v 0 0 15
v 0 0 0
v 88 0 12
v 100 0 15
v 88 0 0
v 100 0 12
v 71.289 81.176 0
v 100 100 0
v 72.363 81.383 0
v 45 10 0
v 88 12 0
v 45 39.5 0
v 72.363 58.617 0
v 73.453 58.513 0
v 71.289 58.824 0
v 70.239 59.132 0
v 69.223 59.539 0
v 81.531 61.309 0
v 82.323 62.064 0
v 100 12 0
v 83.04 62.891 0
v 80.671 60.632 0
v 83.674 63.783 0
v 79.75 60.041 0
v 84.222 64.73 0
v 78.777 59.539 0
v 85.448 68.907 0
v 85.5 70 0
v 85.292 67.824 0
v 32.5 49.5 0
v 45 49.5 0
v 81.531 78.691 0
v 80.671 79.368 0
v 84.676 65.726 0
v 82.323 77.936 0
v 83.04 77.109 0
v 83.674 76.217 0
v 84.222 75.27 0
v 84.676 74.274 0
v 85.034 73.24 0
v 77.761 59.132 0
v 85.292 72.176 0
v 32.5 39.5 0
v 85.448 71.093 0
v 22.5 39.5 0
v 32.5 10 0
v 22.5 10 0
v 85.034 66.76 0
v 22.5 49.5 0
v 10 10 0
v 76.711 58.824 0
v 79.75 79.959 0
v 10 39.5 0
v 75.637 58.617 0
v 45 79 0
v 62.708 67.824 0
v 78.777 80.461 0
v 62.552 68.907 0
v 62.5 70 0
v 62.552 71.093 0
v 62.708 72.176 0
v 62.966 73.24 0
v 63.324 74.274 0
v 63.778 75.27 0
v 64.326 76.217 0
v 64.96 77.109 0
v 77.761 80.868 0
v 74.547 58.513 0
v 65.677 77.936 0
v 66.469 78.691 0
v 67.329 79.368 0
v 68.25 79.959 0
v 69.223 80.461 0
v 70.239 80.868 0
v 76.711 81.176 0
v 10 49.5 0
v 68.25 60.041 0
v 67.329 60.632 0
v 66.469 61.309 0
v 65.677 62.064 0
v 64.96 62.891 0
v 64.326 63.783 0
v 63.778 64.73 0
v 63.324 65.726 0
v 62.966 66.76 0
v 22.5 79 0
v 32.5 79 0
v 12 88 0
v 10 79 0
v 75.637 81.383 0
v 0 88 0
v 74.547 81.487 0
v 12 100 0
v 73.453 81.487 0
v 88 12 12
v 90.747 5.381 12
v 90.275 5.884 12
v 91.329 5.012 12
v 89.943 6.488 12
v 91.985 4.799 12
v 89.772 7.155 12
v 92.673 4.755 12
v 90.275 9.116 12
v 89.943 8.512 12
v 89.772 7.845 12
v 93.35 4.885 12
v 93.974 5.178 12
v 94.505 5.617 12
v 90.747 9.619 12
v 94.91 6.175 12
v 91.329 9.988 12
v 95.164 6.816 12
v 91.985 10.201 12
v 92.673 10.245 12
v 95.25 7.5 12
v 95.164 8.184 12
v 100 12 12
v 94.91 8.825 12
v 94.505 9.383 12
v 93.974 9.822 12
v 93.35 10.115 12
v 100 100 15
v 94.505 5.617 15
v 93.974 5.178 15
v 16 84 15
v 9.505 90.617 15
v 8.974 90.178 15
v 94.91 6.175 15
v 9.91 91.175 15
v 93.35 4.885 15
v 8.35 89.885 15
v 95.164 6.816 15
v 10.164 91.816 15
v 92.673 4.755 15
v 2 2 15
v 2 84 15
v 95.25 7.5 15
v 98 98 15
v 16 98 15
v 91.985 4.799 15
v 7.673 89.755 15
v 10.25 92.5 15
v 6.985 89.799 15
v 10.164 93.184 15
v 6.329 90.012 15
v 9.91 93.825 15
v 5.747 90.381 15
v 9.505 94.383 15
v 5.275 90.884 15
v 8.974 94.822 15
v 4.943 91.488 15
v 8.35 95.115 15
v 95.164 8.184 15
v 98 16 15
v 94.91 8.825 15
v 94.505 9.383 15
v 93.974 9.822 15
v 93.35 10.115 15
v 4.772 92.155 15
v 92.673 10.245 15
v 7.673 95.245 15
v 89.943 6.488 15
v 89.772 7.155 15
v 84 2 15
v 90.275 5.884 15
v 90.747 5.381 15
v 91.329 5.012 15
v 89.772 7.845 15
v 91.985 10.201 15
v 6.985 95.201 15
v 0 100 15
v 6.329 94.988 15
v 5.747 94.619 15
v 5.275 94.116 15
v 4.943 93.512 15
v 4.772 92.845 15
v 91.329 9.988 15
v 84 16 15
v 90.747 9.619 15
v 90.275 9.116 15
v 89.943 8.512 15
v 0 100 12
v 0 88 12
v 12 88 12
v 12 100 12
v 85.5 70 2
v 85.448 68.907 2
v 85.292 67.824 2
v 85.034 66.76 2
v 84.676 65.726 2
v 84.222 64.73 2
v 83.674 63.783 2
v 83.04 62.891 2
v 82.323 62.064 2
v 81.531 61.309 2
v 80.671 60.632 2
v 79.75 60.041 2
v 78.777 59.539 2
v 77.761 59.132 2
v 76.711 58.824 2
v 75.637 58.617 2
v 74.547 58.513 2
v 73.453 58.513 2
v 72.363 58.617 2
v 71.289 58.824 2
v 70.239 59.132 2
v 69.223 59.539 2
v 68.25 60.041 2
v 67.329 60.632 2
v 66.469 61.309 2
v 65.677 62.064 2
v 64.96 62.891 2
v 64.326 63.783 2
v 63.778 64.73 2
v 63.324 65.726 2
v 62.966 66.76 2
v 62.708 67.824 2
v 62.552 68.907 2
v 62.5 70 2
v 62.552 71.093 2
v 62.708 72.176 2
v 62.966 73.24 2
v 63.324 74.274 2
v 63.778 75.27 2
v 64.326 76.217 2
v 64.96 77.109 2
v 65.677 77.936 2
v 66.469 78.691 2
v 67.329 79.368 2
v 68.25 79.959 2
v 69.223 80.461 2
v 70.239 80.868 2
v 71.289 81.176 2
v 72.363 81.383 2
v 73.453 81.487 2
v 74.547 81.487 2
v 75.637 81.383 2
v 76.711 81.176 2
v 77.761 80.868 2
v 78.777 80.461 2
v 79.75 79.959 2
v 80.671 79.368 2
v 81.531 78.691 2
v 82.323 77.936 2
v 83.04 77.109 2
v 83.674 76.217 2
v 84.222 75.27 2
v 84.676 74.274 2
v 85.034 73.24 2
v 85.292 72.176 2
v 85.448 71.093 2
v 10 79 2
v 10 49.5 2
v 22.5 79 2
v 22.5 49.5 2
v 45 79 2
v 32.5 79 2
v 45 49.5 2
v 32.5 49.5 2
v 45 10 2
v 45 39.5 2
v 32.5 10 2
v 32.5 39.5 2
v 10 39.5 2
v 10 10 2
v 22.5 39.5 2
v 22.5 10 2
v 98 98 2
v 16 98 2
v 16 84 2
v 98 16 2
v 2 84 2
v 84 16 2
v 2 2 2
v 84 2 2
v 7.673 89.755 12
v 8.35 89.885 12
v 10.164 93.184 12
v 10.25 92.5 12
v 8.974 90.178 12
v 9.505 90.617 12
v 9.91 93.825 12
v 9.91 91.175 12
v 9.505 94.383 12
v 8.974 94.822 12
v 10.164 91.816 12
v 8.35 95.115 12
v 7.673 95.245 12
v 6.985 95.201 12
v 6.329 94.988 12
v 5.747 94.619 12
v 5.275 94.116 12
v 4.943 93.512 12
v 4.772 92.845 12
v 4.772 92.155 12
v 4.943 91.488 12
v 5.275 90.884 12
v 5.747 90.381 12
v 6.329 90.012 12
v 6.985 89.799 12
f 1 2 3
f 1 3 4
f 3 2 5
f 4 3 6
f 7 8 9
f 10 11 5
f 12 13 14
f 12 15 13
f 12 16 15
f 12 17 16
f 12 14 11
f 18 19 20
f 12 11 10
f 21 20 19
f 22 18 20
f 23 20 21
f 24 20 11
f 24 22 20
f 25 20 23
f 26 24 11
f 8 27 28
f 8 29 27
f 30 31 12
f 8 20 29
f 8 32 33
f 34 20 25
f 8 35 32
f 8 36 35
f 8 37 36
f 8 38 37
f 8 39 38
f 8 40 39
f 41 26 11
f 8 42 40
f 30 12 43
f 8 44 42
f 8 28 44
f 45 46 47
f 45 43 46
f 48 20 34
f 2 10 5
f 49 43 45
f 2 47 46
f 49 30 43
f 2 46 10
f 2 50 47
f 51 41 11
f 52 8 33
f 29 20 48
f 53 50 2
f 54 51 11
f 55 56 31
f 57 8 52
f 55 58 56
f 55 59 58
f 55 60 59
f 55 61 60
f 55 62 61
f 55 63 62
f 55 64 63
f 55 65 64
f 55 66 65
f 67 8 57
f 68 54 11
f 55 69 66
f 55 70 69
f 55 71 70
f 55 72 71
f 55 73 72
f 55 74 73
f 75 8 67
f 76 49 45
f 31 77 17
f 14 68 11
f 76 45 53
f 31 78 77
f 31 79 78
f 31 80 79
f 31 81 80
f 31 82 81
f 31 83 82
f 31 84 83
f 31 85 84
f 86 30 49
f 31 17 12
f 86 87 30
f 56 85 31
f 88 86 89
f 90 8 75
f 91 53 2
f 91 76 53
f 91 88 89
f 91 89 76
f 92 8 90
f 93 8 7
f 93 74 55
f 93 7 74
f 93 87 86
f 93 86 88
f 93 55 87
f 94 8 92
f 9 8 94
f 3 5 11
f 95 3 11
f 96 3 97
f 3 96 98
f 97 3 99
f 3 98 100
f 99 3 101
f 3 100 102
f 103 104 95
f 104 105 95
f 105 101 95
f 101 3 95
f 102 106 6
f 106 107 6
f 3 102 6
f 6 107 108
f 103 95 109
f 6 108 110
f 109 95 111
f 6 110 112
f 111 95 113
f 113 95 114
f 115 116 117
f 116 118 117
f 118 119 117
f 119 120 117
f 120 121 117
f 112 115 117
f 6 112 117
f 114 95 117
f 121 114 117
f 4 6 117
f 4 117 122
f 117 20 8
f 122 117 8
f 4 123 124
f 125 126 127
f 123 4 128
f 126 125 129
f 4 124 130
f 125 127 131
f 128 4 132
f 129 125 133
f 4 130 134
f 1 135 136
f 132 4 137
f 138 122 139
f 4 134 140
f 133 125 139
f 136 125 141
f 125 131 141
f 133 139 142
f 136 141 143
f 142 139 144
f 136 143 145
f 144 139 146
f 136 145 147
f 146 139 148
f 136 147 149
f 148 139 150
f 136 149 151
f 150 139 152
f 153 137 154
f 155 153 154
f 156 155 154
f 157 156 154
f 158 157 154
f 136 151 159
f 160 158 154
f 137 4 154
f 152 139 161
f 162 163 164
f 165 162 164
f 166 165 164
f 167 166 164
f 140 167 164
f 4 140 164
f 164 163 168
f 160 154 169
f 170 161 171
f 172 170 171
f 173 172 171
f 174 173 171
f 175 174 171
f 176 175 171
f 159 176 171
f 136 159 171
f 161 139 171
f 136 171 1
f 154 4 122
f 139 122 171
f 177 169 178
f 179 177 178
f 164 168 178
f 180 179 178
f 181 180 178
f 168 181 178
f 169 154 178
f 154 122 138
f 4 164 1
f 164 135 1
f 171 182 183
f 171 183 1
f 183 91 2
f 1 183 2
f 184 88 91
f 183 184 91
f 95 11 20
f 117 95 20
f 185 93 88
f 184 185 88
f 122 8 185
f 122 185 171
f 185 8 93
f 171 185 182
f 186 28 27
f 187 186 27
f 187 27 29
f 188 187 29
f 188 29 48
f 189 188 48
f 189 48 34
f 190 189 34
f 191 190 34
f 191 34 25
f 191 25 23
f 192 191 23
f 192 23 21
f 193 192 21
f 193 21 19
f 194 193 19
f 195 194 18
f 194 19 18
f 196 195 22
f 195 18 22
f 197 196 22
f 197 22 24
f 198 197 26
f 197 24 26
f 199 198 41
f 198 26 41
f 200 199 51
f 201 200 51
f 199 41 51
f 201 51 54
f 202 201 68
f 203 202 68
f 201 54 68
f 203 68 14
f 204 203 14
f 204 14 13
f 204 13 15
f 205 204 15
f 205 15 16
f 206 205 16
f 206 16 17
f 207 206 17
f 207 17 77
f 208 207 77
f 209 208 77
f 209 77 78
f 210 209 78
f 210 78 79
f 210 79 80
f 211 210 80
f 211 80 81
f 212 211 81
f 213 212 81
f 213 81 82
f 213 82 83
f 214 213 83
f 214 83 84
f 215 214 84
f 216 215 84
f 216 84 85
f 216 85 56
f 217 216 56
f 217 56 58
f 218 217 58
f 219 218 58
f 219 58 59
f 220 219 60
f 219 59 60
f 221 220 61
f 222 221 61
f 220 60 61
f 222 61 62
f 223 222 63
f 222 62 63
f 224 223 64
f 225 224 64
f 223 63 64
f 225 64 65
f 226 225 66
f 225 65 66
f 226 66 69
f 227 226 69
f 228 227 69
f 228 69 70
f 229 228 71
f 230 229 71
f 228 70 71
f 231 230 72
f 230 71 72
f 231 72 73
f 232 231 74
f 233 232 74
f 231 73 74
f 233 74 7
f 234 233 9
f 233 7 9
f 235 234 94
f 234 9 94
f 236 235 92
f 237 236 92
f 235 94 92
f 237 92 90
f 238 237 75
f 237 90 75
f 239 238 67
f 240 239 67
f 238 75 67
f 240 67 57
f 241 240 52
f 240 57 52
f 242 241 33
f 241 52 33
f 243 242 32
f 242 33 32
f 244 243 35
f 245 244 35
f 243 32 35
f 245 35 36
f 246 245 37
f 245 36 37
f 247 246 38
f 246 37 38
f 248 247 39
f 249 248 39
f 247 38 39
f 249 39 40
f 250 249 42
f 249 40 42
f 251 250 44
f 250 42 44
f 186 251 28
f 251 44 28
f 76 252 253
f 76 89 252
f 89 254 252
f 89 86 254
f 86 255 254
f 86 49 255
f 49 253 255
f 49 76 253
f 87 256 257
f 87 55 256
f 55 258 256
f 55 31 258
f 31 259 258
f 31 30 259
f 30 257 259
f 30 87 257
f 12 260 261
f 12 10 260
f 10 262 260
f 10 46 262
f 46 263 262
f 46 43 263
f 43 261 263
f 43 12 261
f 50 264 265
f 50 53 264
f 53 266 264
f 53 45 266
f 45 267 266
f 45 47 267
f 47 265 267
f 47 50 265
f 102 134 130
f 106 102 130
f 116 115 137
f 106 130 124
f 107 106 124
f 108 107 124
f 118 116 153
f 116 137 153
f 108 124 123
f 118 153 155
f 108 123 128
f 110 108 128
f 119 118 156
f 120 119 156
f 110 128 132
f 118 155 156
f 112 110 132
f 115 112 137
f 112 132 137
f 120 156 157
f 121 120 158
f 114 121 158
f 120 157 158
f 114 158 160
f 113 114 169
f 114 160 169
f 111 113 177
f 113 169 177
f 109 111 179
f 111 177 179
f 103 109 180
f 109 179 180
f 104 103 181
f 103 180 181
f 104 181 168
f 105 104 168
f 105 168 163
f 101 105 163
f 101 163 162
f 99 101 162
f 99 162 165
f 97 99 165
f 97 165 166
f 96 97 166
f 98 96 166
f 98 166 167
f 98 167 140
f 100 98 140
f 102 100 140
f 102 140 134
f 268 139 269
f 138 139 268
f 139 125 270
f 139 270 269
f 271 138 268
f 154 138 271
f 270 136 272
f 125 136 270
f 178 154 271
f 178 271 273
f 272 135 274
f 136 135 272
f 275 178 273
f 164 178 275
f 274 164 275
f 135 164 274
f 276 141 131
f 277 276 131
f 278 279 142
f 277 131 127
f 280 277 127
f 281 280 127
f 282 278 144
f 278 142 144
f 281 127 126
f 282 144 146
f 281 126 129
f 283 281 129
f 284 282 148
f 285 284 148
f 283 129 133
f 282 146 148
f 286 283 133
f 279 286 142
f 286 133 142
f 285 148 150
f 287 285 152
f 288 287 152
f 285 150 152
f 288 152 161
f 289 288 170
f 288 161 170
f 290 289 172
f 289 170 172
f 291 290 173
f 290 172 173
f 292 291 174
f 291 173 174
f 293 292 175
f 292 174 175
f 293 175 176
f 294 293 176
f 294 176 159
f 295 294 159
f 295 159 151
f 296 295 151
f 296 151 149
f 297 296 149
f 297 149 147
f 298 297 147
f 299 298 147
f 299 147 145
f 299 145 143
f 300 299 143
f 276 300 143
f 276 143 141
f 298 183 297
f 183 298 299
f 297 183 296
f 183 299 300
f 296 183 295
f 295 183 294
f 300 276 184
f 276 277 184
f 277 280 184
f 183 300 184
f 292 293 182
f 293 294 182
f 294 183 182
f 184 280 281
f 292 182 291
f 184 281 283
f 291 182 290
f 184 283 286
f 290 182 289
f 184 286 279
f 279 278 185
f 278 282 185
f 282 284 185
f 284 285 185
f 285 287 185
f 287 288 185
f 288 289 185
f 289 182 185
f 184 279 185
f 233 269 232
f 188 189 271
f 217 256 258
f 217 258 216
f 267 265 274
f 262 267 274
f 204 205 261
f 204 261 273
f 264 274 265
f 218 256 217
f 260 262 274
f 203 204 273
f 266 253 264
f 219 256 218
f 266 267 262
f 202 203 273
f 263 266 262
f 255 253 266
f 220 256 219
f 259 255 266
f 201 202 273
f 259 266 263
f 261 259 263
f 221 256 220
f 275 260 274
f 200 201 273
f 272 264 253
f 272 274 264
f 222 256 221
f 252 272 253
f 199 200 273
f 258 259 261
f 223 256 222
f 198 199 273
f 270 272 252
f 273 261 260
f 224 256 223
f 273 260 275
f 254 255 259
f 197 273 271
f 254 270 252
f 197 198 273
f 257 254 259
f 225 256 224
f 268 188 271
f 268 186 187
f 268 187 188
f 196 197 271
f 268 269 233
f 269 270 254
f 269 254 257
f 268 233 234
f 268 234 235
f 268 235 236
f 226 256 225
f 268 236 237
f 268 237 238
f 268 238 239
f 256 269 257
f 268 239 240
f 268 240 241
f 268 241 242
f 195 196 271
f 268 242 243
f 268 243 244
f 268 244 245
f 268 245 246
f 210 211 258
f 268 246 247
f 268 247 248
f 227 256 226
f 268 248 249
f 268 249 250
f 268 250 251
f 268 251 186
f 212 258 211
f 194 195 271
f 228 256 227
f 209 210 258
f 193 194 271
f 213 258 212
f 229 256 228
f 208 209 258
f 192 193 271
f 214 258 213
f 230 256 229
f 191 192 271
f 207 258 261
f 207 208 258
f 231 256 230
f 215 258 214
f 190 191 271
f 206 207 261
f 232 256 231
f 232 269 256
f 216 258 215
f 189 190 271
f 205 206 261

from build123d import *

# Parameters (mm, degrees)
SKETCH_W        = 100
SKETCH_H        = 100
PAD_DEPTH       = 15
POCKET_DEPTH    = 13
SKETCH002_W     = 12
SKETCH002_H     = 12
POCKET001_DEPTH = 12
SKETCH003_R     = 2.75
POCKET002_DEPTH = 3
SKETCH004_R     = 11.5
SKETCH004_W     = 12.5
SKETCH004_H     = 29.5
POCKET003_DEPTH = 3


with BuildPart() as part:
    # Sketch → Pad (new body)
    with BuildSketch(Plane.XY):
        with Locations((50, 50)):
            Rectangle(SKETCH_W, SKETCH_H)
    extrude(amount=PAD_DEPTH)

    # Sketch001 → Pocket (cut)
    with BuildSketch(Plane.XY.offset(15)):
        Polygon((2, 2), (2, 84), (16, 84), (16, 98), (98, 98), (98, 16), (84, 16), (84, 2), align=None)
    extrude(amount=-POCKET_DEPTH, mode=Mode.SUBTRACT)

    # Sketch002 → Pocket001 (cut)
    with BuildSketch(Plane(origin=(0, 0, 0), x_dir=(1, 0, 0), z_dir=(0, 0, -1))):
        with Locations((94, -6)):
            Rectangle(SKETCH002_W, SKETCH002_H)
        with Locations((6, -94)):
            Rectangle(SKETCH002_W, SKETCH002_H)
    extrude(amount=-POCKET001_DEPTH, mode=Mode.SUBTRACT)

    # Sketch003 → Pocket002 (cut)
    with BuildSketch(Plane.XY.offset(15)):
        with Locations((7.5, 92.5)):
            Circle(SKETCH003_R)
        with Locations((92.5, 7.5)):
            Circle(SKETCH003_R)
    extrude(amount=-POCKET002_DEPTH, mode=Mode.SUBTRACT)

    # Sketch004 → Pocket003 (cut)
    with BuildSketch(Plane(origin=(0, 0, 0), x_dir=(1, 0, 0), z_dir=(0, 0, -1))):
        with Locations((74, -70)):
            Circle(SKETCH004_R)
        with Locations((16.25, -24.75)):
            Rectangle(SKETCH004_W, SKETCH004_H)
        with Locations((16.25, -64.25)):
            Rectangle(SKETCH004_W, SKETCH004_H)
        with Locations((38.75, -24.75)):
            Rectangle(SKETCH004_W, SKETCH004_H)
        with Locations((38.75, -64.25)):
            Rectangle(SKETCH004_W, SKETCH004_H)
    extrude(amount=-POCKET003_DEPTH, mode=Mode.SUBTRACT)


solid = part.part
